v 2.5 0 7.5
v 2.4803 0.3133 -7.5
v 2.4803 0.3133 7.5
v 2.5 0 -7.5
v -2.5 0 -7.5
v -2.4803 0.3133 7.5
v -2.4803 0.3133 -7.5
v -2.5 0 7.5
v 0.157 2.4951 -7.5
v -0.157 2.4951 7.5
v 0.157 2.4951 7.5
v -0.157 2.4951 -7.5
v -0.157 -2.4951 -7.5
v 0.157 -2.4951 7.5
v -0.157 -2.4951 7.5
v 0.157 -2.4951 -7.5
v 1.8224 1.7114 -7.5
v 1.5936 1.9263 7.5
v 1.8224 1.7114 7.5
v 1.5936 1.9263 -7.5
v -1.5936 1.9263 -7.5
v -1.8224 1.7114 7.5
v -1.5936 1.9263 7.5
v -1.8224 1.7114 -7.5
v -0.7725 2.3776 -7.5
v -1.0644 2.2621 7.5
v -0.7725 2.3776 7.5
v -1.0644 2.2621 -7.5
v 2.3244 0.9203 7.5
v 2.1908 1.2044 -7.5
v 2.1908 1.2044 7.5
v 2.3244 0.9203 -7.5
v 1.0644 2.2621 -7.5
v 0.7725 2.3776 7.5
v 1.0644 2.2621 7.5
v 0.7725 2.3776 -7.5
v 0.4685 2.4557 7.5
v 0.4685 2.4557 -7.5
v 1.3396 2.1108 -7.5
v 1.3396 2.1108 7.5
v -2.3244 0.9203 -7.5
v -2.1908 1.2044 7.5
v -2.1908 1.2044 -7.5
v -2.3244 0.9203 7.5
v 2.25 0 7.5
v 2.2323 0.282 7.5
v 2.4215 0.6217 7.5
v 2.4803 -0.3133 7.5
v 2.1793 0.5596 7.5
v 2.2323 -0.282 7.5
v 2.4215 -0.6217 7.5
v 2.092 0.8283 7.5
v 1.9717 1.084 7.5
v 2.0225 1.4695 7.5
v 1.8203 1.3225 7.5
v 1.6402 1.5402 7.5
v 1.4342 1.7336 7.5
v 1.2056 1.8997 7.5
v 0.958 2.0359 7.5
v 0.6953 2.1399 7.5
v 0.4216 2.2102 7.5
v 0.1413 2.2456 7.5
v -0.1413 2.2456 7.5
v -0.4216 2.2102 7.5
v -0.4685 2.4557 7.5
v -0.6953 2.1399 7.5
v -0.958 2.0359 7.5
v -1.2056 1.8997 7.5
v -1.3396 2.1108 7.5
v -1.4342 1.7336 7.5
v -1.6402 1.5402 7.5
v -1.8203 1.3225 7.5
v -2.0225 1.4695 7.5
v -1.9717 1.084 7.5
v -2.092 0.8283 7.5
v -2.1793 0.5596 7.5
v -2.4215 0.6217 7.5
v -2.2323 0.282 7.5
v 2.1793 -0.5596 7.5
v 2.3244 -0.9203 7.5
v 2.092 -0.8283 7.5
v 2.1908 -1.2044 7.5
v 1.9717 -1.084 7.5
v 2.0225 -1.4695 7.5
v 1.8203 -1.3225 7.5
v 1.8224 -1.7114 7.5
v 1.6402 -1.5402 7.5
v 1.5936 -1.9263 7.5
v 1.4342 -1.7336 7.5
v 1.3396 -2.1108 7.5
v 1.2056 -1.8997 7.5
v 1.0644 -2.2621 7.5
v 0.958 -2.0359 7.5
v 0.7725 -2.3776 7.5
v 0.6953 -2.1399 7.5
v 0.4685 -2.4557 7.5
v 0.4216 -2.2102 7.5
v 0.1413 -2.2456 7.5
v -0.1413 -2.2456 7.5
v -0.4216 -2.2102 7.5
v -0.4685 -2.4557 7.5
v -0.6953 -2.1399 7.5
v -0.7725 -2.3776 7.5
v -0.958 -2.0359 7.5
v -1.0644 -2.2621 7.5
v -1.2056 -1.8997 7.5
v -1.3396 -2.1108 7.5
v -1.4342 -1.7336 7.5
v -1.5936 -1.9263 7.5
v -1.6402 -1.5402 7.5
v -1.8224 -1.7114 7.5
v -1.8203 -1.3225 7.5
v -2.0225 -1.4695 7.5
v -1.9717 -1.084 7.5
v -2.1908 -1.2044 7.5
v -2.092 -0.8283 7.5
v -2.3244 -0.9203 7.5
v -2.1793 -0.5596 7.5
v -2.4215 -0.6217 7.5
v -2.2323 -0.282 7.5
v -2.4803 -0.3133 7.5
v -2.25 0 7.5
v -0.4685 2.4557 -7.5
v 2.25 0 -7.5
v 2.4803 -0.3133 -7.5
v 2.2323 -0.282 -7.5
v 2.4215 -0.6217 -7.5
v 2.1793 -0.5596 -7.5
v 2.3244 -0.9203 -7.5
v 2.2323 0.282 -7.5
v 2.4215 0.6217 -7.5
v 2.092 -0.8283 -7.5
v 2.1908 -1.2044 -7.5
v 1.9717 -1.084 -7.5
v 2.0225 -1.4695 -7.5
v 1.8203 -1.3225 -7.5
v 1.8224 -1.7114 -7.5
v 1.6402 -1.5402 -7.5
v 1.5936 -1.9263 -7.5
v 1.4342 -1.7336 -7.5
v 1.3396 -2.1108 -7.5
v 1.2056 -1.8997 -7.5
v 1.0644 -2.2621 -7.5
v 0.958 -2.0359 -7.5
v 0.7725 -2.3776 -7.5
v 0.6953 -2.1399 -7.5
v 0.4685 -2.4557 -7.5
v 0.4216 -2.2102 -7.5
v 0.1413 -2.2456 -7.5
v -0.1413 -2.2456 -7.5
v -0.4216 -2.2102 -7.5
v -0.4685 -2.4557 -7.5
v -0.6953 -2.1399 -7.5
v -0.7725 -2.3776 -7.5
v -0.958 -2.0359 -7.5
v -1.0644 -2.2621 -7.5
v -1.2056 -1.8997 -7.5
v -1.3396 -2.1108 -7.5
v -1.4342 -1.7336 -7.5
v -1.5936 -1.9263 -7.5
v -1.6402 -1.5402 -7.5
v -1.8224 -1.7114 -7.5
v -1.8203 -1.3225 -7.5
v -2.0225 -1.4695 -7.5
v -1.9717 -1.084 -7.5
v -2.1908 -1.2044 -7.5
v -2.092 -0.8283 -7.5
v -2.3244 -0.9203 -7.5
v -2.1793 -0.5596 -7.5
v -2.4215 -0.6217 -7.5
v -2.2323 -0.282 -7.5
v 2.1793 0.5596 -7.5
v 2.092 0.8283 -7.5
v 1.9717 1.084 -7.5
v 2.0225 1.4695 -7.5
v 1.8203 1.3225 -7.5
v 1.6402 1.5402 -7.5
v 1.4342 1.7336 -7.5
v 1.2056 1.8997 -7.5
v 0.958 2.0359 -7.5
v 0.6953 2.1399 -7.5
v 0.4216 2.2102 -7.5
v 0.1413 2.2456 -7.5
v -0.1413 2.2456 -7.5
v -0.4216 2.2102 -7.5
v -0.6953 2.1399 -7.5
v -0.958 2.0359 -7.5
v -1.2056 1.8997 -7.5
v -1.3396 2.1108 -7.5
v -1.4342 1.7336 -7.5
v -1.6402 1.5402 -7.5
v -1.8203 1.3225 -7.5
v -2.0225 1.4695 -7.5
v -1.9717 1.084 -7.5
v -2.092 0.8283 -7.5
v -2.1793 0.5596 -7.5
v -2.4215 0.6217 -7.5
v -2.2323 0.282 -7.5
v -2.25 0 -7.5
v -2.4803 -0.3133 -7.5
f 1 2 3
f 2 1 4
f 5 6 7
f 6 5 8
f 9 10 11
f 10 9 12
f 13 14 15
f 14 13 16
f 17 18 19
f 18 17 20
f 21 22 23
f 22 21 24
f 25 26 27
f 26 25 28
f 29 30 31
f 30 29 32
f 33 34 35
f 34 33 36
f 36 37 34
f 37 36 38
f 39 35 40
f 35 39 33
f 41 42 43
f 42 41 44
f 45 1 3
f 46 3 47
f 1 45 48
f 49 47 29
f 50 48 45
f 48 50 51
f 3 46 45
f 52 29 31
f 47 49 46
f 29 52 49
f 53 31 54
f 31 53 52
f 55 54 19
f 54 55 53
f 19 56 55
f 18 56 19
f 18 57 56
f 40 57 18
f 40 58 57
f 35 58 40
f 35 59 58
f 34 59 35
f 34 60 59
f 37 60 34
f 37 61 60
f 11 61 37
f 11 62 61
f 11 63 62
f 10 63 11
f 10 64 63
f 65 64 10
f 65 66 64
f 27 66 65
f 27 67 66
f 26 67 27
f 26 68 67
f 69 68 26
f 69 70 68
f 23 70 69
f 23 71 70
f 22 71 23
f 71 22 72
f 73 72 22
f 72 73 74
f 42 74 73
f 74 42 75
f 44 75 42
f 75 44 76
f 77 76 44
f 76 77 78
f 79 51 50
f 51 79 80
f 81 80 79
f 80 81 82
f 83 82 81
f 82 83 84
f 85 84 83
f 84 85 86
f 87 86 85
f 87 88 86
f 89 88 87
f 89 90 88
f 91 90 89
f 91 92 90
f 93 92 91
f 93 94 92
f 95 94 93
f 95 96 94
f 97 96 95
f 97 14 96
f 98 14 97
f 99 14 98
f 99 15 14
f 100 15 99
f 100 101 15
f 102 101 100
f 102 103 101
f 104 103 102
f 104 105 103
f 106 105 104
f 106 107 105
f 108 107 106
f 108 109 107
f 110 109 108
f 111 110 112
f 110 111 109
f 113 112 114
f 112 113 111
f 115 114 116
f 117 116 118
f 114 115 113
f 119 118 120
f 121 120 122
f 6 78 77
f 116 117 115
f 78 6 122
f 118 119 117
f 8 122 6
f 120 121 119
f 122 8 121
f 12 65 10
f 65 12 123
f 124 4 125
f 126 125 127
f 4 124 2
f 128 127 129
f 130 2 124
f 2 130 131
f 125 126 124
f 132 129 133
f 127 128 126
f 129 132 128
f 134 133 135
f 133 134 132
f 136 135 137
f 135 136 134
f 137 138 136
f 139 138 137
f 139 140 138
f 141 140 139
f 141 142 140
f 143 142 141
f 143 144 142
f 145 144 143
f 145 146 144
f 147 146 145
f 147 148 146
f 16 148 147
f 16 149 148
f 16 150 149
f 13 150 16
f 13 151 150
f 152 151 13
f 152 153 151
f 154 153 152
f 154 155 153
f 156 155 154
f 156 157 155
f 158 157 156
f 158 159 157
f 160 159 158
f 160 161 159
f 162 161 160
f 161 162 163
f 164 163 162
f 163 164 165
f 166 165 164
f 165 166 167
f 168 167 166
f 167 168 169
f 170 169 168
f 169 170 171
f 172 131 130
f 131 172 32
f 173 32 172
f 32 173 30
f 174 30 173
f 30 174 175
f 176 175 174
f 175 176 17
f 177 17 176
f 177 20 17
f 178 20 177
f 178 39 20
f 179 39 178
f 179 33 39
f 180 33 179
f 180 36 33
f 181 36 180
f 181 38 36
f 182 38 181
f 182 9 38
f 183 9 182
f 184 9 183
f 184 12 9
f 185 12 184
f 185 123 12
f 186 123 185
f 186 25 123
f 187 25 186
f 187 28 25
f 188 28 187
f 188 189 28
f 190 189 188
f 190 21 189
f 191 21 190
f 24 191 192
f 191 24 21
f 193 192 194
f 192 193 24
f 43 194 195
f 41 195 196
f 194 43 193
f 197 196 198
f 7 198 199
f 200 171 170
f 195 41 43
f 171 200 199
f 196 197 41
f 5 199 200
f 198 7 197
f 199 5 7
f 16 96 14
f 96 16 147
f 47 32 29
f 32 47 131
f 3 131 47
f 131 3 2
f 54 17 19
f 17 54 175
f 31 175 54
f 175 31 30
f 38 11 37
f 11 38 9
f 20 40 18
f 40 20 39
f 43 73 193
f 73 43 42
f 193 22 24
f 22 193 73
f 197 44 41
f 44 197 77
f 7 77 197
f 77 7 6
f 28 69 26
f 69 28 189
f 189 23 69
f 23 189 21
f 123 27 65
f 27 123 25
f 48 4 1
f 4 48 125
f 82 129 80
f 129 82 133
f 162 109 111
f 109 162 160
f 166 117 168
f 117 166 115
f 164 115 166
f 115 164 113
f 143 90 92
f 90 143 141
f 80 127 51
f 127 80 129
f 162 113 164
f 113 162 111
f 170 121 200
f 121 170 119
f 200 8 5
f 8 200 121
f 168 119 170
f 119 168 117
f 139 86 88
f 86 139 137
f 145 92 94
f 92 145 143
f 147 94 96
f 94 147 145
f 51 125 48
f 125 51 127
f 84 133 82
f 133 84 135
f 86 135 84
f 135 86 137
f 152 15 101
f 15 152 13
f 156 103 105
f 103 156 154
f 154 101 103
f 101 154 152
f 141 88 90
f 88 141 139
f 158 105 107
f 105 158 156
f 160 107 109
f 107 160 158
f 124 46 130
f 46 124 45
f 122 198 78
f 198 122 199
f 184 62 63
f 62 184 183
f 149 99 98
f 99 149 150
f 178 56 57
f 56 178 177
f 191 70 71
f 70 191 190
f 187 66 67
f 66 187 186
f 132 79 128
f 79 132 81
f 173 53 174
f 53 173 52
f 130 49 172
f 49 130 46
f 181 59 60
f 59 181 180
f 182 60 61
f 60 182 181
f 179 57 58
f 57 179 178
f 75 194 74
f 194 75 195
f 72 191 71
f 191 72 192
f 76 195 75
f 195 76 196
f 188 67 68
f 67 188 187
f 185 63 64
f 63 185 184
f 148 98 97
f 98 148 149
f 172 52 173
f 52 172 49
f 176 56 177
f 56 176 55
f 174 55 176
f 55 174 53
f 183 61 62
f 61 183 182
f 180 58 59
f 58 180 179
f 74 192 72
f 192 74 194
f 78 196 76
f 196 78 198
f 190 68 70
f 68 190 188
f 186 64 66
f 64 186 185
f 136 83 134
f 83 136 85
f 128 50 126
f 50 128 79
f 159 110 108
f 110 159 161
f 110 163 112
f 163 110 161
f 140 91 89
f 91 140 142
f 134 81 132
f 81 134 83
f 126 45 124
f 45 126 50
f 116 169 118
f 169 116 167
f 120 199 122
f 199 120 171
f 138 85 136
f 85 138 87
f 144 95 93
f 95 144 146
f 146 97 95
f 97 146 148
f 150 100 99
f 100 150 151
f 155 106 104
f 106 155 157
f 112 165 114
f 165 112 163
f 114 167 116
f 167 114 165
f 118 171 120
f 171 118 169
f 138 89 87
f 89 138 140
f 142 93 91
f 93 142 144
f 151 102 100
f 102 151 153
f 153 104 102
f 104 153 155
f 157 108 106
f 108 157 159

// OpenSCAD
$fn = 50;


difference() {
	union() {
		translate(v = [0, 0, -7.5000000000]) {
			cylinder(h = 15, r = 2.5000000000);
		}
	}
	union() {
		translate(v = [0, 0, -100.0000000000]) {
			cylinder(h = 200, r = 2.2500000000);
		}
	}
}
